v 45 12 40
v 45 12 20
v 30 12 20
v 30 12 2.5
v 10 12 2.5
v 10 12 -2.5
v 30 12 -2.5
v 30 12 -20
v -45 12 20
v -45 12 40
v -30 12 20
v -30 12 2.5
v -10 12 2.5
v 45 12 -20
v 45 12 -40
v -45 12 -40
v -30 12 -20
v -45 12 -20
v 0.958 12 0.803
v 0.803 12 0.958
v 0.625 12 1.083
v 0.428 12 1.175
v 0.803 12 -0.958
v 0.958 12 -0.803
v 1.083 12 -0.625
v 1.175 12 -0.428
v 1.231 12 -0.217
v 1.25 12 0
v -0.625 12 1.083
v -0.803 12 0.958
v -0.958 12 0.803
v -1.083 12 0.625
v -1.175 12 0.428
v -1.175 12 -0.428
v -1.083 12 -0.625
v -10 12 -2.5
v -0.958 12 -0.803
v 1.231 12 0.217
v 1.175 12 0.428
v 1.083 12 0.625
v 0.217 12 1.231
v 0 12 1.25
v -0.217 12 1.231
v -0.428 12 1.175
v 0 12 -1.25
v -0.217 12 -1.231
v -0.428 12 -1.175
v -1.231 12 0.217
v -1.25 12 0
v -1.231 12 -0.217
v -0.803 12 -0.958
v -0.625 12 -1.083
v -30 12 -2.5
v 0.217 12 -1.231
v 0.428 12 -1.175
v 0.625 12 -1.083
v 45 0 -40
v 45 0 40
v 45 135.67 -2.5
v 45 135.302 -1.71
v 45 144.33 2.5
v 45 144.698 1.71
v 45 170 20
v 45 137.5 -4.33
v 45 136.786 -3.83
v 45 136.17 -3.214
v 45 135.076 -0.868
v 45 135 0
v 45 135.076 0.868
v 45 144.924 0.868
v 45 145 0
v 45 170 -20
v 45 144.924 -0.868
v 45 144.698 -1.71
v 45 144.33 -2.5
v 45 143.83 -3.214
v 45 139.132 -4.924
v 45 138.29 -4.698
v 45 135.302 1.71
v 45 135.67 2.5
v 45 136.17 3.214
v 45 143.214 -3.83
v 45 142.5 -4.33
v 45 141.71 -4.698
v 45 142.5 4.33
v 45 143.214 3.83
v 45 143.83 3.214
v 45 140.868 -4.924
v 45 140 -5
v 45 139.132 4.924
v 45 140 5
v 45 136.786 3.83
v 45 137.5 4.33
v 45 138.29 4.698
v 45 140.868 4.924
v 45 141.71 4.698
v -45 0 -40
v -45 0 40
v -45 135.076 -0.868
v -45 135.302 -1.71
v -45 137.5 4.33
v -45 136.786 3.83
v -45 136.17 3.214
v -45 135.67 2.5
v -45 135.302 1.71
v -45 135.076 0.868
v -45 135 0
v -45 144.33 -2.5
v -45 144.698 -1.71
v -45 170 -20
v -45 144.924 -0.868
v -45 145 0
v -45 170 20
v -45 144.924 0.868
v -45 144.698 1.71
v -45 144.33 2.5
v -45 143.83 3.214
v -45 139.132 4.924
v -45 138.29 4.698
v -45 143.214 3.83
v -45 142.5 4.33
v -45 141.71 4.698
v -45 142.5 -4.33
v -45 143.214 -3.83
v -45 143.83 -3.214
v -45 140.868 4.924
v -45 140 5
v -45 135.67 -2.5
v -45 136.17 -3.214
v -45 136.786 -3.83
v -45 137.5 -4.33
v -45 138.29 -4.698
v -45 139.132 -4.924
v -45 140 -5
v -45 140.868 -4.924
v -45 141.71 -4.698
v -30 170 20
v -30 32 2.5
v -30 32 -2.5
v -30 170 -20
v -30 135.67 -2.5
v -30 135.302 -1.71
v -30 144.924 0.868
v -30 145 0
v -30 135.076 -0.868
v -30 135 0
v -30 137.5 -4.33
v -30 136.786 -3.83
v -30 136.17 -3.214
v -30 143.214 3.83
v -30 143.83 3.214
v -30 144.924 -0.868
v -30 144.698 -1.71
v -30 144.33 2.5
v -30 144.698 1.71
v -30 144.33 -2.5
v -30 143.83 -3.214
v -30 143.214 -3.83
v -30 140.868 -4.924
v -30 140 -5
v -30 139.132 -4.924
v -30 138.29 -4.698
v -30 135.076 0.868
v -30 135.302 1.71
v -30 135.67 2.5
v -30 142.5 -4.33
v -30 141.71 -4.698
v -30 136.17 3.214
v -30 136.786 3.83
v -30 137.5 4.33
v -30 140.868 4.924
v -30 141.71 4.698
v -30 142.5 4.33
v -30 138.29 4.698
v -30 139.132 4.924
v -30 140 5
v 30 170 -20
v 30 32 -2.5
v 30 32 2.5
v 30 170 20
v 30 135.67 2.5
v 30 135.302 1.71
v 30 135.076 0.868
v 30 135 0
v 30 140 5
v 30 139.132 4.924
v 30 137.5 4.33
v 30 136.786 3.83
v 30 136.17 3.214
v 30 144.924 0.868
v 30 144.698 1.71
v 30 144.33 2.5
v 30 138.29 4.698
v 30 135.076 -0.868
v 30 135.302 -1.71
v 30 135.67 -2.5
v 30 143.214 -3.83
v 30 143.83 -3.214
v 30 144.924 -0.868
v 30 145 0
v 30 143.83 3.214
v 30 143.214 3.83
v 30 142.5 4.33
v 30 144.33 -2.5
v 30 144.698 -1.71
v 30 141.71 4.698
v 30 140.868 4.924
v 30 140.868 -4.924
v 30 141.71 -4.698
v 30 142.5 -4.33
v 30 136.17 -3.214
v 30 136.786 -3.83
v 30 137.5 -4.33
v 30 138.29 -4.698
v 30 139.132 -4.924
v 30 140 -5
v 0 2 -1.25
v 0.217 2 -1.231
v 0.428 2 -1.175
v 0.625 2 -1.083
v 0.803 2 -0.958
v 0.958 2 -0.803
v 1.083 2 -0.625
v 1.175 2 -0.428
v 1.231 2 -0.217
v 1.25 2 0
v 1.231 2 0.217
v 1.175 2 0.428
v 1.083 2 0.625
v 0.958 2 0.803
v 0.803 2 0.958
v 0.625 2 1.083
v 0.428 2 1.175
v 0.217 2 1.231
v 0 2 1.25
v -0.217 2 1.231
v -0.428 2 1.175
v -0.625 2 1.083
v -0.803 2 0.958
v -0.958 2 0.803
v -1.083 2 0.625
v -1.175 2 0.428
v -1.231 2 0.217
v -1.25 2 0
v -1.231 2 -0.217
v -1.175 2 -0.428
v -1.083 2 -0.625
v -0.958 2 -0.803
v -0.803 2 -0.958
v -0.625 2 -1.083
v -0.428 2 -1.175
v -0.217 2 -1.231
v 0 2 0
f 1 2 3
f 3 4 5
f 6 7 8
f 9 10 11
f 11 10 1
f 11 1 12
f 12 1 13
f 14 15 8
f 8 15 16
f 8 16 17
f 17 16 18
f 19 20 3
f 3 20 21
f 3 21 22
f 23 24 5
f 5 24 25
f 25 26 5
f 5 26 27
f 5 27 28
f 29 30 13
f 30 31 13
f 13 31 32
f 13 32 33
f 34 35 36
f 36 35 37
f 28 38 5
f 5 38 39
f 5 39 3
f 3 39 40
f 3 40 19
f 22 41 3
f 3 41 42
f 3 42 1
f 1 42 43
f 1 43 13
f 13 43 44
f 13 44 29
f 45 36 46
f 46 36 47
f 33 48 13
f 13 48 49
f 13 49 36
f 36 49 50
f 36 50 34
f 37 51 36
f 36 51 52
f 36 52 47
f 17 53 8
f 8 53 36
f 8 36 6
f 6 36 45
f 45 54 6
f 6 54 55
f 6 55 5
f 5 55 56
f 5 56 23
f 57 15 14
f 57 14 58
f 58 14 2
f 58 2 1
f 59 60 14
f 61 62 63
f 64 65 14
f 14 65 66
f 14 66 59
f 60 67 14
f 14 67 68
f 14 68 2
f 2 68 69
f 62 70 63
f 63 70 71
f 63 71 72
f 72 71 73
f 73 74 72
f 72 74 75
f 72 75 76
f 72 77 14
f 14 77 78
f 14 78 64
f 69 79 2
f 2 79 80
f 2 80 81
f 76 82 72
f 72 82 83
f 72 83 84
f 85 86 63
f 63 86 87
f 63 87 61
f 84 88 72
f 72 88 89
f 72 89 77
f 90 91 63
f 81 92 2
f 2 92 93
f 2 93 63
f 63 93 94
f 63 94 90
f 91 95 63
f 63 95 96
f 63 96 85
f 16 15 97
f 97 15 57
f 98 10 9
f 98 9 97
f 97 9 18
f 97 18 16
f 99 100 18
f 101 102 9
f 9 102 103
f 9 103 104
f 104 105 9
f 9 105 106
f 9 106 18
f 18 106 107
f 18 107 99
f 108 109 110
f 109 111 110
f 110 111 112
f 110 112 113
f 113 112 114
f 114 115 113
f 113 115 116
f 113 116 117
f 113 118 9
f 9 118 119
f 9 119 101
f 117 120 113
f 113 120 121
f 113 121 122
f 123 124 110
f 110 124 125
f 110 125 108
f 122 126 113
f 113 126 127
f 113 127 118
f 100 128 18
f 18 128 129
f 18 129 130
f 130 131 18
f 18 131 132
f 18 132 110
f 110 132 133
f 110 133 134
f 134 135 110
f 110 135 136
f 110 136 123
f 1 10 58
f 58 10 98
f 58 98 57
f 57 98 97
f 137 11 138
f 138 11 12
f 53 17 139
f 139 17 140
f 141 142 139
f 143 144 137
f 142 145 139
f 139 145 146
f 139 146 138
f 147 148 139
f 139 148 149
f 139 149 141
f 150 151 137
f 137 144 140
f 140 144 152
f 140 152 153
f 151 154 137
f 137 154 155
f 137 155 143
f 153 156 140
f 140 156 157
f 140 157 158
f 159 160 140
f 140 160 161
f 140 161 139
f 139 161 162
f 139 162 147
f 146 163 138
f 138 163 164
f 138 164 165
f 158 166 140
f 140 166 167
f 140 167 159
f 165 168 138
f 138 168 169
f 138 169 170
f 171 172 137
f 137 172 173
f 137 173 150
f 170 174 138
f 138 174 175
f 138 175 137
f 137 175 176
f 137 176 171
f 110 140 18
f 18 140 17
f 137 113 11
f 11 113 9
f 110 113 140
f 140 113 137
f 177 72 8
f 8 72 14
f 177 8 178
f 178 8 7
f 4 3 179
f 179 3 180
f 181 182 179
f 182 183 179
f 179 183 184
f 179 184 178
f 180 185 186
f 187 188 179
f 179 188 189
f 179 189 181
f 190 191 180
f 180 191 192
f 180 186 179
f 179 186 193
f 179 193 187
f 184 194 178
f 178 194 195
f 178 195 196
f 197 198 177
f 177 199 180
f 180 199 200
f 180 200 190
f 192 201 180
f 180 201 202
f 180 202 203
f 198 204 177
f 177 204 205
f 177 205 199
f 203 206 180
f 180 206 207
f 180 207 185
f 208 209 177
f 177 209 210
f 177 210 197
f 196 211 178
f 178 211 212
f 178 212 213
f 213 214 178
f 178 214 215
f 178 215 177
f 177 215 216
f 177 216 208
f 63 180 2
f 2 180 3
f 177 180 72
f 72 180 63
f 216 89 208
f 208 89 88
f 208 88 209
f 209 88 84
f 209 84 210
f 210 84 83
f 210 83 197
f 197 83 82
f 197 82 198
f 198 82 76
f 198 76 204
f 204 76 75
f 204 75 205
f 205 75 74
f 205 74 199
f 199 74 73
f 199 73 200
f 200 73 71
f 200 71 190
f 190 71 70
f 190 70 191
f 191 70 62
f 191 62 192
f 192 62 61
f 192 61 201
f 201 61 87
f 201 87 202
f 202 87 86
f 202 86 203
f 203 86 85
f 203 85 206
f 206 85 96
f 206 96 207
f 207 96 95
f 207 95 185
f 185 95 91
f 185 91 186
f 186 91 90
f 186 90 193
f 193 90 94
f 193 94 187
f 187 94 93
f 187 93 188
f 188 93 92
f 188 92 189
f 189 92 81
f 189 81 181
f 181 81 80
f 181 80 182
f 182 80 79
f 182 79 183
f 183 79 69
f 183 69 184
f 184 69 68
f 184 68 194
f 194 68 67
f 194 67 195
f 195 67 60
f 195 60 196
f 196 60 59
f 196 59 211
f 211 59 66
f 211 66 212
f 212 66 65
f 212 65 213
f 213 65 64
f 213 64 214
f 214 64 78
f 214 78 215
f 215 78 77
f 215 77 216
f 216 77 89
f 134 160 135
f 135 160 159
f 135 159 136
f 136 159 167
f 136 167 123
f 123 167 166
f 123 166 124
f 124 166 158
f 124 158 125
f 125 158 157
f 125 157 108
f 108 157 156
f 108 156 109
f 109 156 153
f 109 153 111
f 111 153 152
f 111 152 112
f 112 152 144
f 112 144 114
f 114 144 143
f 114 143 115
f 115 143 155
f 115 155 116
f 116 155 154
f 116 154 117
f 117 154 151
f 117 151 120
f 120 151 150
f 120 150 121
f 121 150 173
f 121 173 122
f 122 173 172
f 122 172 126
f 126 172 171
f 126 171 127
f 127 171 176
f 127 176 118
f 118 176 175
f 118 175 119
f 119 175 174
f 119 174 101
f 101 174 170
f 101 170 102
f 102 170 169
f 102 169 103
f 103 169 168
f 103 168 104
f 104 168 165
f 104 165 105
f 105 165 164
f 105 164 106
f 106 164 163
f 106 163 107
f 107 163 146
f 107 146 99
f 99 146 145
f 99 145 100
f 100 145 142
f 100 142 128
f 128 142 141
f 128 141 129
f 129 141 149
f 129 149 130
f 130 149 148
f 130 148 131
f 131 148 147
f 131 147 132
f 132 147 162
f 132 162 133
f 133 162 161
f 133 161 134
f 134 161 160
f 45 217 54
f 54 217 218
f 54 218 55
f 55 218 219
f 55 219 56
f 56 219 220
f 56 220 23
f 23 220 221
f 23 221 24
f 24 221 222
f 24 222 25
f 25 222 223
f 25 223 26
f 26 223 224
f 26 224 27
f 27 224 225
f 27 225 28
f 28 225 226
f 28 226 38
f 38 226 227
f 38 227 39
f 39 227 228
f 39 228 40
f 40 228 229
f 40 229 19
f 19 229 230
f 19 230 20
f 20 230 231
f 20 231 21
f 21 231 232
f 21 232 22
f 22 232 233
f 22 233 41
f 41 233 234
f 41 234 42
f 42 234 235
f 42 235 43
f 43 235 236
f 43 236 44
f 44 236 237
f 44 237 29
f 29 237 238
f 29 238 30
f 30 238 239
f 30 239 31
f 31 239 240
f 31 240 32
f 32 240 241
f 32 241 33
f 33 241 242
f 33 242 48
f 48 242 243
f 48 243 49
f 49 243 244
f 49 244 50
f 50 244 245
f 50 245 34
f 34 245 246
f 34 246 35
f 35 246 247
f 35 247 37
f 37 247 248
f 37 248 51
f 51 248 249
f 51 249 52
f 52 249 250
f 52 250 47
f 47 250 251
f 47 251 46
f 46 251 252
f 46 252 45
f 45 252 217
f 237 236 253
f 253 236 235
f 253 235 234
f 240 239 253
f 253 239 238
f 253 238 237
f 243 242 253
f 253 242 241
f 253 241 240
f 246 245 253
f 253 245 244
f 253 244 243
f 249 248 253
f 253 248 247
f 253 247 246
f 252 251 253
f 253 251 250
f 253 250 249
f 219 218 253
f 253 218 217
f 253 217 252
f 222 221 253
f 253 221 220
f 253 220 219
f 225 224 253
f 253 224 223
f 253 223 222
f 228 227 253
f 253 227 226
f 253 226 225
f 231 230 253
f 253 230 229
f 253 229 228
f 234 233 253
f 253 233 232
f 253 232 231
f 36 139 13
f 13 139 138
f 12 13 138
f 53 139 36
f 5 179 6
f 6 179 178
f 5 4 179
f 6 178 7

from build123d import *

# Parameters (mm, degrees)
SKETCH_1_W               = 90
SKETCH_1_H               = 80
EXTRUDE_1_DEPTH          = 12
SKETCH_2_W               = 15
SKETCH_2_H               = 40
EXTRUDE_2_DEPTH          = 158
CUT_EXTRUDE_1_DEPTH      = 181.346887969
CUT_EXTRUDE_1_DEPTH_BACK = 181.346887969
SKETCH_3_R               = 5
CUT_EXTRUDE_2_DEPTH      = 170.082819943
CUT_EXTRUDE_2_DEPTH_BACK = 10
SKETCH_4_R               = 1.25
RIB_6_REACH              = 182.347
SKETCH_6_WALL_W          = 28.284271248
SKETCH_6_WALL_H          = 5


with BuildPart() as part:
    # 草图1 → 凸台-拉伸1 (new body)
    with BuildSketch(Plane(origin=(0, 0, 0), x_dir=(1, 0, 0), z_dir=(0, 1, 0))):
        Rectangle(SKETCH_1_W, SKETCH_1_H)
    extrude(amount=EXTRUDE_1_DEPTH)

    # 草图2 → 凸台-拉伸2 (add)
    with BuildSketch(Plane(origin=(0, 12, 0), x_dir=(1, 0, 0), z_dir=(0, 1, 0))):
        with Locations((-37.5, 0)):
            Rectangle(SKETCH_2_W, SKETCH_2_H)
        with Locations((37.5, 0)):
            Rectangle(SKETCH_2_W, SKETCH_2_H)
    extrude(amount=EXTRUDE_2_DEPTH)

    # 草图3 → 切除-拉伸1 (cut, two sides: drawn at the far end of the back side and taken through both)
    with BuildSketch(Plane(origin=(0, 0, 0), x_dir=(0, 0, -1), z_dir=(1, 0, 0)).offset(-CUT_EXTRUDE_1_DEPTH_BACK)):
        with Locations((0, 140)):
            Circle(SKETCH_3_R)
    extrude(amount=CUT_EXTRUDE_1_DEPTH + CUT_EXTRUDE_1_DEPTH_BACK, mode=Mode.SUBTRACT)

    # 草图4 → 切除-拉伸2 (cut, two sides: drawn at the far end of the back side and taken through both)
    with BuildSketch(Plane(origin=(0, 12, 0), x_dir=(1, 0, 0), z_dir=(0, 1, 0)).offset(-CUT_EXTRUDE_2_DEPTH_BACK)):
        with Locations(Location((0, 0, 0), (0, 0, 270))):
            Circle(SKETCH_4_R)
    extrude(amount=CUT_EXTRUDE_2_DEPTH + CUT_EXTRUDE_2_DEPTH_BACK, mode=Mode.SUBTRACT)

    # 草图6 wall → 筋6 (add, up to next)
    with BuildSketch(Plane(origin=(-20, 22, 0), x_dir=(0.707106781187, -0.707106781187, 0), z_dir=(0.707106781187, 0.707106781187, 0)), mode=Mode.PRIVATE) as rib_6_sk1:
        Rectangle(SKETCH_6_WALL_W, SKETCH_6_WALL_H)
    rib_6_tool1 = extrude(rib_6_sk1.sketch, amount=-RIB_6_REACH, mode=Mode.PRIVATE) - part.part
    rib_6 = rib_6_tool1.solids().sort_by_distance((-20, 22, 0))[0]
    add(rib_6)

    # 镜向1: 筋6 across plane
    add(rib_6.mirror(Plane(origin=(0, 0, 0), x_dir=(0, 0, 1), z_dir=(1, 0, 0))))


solid = part.part
